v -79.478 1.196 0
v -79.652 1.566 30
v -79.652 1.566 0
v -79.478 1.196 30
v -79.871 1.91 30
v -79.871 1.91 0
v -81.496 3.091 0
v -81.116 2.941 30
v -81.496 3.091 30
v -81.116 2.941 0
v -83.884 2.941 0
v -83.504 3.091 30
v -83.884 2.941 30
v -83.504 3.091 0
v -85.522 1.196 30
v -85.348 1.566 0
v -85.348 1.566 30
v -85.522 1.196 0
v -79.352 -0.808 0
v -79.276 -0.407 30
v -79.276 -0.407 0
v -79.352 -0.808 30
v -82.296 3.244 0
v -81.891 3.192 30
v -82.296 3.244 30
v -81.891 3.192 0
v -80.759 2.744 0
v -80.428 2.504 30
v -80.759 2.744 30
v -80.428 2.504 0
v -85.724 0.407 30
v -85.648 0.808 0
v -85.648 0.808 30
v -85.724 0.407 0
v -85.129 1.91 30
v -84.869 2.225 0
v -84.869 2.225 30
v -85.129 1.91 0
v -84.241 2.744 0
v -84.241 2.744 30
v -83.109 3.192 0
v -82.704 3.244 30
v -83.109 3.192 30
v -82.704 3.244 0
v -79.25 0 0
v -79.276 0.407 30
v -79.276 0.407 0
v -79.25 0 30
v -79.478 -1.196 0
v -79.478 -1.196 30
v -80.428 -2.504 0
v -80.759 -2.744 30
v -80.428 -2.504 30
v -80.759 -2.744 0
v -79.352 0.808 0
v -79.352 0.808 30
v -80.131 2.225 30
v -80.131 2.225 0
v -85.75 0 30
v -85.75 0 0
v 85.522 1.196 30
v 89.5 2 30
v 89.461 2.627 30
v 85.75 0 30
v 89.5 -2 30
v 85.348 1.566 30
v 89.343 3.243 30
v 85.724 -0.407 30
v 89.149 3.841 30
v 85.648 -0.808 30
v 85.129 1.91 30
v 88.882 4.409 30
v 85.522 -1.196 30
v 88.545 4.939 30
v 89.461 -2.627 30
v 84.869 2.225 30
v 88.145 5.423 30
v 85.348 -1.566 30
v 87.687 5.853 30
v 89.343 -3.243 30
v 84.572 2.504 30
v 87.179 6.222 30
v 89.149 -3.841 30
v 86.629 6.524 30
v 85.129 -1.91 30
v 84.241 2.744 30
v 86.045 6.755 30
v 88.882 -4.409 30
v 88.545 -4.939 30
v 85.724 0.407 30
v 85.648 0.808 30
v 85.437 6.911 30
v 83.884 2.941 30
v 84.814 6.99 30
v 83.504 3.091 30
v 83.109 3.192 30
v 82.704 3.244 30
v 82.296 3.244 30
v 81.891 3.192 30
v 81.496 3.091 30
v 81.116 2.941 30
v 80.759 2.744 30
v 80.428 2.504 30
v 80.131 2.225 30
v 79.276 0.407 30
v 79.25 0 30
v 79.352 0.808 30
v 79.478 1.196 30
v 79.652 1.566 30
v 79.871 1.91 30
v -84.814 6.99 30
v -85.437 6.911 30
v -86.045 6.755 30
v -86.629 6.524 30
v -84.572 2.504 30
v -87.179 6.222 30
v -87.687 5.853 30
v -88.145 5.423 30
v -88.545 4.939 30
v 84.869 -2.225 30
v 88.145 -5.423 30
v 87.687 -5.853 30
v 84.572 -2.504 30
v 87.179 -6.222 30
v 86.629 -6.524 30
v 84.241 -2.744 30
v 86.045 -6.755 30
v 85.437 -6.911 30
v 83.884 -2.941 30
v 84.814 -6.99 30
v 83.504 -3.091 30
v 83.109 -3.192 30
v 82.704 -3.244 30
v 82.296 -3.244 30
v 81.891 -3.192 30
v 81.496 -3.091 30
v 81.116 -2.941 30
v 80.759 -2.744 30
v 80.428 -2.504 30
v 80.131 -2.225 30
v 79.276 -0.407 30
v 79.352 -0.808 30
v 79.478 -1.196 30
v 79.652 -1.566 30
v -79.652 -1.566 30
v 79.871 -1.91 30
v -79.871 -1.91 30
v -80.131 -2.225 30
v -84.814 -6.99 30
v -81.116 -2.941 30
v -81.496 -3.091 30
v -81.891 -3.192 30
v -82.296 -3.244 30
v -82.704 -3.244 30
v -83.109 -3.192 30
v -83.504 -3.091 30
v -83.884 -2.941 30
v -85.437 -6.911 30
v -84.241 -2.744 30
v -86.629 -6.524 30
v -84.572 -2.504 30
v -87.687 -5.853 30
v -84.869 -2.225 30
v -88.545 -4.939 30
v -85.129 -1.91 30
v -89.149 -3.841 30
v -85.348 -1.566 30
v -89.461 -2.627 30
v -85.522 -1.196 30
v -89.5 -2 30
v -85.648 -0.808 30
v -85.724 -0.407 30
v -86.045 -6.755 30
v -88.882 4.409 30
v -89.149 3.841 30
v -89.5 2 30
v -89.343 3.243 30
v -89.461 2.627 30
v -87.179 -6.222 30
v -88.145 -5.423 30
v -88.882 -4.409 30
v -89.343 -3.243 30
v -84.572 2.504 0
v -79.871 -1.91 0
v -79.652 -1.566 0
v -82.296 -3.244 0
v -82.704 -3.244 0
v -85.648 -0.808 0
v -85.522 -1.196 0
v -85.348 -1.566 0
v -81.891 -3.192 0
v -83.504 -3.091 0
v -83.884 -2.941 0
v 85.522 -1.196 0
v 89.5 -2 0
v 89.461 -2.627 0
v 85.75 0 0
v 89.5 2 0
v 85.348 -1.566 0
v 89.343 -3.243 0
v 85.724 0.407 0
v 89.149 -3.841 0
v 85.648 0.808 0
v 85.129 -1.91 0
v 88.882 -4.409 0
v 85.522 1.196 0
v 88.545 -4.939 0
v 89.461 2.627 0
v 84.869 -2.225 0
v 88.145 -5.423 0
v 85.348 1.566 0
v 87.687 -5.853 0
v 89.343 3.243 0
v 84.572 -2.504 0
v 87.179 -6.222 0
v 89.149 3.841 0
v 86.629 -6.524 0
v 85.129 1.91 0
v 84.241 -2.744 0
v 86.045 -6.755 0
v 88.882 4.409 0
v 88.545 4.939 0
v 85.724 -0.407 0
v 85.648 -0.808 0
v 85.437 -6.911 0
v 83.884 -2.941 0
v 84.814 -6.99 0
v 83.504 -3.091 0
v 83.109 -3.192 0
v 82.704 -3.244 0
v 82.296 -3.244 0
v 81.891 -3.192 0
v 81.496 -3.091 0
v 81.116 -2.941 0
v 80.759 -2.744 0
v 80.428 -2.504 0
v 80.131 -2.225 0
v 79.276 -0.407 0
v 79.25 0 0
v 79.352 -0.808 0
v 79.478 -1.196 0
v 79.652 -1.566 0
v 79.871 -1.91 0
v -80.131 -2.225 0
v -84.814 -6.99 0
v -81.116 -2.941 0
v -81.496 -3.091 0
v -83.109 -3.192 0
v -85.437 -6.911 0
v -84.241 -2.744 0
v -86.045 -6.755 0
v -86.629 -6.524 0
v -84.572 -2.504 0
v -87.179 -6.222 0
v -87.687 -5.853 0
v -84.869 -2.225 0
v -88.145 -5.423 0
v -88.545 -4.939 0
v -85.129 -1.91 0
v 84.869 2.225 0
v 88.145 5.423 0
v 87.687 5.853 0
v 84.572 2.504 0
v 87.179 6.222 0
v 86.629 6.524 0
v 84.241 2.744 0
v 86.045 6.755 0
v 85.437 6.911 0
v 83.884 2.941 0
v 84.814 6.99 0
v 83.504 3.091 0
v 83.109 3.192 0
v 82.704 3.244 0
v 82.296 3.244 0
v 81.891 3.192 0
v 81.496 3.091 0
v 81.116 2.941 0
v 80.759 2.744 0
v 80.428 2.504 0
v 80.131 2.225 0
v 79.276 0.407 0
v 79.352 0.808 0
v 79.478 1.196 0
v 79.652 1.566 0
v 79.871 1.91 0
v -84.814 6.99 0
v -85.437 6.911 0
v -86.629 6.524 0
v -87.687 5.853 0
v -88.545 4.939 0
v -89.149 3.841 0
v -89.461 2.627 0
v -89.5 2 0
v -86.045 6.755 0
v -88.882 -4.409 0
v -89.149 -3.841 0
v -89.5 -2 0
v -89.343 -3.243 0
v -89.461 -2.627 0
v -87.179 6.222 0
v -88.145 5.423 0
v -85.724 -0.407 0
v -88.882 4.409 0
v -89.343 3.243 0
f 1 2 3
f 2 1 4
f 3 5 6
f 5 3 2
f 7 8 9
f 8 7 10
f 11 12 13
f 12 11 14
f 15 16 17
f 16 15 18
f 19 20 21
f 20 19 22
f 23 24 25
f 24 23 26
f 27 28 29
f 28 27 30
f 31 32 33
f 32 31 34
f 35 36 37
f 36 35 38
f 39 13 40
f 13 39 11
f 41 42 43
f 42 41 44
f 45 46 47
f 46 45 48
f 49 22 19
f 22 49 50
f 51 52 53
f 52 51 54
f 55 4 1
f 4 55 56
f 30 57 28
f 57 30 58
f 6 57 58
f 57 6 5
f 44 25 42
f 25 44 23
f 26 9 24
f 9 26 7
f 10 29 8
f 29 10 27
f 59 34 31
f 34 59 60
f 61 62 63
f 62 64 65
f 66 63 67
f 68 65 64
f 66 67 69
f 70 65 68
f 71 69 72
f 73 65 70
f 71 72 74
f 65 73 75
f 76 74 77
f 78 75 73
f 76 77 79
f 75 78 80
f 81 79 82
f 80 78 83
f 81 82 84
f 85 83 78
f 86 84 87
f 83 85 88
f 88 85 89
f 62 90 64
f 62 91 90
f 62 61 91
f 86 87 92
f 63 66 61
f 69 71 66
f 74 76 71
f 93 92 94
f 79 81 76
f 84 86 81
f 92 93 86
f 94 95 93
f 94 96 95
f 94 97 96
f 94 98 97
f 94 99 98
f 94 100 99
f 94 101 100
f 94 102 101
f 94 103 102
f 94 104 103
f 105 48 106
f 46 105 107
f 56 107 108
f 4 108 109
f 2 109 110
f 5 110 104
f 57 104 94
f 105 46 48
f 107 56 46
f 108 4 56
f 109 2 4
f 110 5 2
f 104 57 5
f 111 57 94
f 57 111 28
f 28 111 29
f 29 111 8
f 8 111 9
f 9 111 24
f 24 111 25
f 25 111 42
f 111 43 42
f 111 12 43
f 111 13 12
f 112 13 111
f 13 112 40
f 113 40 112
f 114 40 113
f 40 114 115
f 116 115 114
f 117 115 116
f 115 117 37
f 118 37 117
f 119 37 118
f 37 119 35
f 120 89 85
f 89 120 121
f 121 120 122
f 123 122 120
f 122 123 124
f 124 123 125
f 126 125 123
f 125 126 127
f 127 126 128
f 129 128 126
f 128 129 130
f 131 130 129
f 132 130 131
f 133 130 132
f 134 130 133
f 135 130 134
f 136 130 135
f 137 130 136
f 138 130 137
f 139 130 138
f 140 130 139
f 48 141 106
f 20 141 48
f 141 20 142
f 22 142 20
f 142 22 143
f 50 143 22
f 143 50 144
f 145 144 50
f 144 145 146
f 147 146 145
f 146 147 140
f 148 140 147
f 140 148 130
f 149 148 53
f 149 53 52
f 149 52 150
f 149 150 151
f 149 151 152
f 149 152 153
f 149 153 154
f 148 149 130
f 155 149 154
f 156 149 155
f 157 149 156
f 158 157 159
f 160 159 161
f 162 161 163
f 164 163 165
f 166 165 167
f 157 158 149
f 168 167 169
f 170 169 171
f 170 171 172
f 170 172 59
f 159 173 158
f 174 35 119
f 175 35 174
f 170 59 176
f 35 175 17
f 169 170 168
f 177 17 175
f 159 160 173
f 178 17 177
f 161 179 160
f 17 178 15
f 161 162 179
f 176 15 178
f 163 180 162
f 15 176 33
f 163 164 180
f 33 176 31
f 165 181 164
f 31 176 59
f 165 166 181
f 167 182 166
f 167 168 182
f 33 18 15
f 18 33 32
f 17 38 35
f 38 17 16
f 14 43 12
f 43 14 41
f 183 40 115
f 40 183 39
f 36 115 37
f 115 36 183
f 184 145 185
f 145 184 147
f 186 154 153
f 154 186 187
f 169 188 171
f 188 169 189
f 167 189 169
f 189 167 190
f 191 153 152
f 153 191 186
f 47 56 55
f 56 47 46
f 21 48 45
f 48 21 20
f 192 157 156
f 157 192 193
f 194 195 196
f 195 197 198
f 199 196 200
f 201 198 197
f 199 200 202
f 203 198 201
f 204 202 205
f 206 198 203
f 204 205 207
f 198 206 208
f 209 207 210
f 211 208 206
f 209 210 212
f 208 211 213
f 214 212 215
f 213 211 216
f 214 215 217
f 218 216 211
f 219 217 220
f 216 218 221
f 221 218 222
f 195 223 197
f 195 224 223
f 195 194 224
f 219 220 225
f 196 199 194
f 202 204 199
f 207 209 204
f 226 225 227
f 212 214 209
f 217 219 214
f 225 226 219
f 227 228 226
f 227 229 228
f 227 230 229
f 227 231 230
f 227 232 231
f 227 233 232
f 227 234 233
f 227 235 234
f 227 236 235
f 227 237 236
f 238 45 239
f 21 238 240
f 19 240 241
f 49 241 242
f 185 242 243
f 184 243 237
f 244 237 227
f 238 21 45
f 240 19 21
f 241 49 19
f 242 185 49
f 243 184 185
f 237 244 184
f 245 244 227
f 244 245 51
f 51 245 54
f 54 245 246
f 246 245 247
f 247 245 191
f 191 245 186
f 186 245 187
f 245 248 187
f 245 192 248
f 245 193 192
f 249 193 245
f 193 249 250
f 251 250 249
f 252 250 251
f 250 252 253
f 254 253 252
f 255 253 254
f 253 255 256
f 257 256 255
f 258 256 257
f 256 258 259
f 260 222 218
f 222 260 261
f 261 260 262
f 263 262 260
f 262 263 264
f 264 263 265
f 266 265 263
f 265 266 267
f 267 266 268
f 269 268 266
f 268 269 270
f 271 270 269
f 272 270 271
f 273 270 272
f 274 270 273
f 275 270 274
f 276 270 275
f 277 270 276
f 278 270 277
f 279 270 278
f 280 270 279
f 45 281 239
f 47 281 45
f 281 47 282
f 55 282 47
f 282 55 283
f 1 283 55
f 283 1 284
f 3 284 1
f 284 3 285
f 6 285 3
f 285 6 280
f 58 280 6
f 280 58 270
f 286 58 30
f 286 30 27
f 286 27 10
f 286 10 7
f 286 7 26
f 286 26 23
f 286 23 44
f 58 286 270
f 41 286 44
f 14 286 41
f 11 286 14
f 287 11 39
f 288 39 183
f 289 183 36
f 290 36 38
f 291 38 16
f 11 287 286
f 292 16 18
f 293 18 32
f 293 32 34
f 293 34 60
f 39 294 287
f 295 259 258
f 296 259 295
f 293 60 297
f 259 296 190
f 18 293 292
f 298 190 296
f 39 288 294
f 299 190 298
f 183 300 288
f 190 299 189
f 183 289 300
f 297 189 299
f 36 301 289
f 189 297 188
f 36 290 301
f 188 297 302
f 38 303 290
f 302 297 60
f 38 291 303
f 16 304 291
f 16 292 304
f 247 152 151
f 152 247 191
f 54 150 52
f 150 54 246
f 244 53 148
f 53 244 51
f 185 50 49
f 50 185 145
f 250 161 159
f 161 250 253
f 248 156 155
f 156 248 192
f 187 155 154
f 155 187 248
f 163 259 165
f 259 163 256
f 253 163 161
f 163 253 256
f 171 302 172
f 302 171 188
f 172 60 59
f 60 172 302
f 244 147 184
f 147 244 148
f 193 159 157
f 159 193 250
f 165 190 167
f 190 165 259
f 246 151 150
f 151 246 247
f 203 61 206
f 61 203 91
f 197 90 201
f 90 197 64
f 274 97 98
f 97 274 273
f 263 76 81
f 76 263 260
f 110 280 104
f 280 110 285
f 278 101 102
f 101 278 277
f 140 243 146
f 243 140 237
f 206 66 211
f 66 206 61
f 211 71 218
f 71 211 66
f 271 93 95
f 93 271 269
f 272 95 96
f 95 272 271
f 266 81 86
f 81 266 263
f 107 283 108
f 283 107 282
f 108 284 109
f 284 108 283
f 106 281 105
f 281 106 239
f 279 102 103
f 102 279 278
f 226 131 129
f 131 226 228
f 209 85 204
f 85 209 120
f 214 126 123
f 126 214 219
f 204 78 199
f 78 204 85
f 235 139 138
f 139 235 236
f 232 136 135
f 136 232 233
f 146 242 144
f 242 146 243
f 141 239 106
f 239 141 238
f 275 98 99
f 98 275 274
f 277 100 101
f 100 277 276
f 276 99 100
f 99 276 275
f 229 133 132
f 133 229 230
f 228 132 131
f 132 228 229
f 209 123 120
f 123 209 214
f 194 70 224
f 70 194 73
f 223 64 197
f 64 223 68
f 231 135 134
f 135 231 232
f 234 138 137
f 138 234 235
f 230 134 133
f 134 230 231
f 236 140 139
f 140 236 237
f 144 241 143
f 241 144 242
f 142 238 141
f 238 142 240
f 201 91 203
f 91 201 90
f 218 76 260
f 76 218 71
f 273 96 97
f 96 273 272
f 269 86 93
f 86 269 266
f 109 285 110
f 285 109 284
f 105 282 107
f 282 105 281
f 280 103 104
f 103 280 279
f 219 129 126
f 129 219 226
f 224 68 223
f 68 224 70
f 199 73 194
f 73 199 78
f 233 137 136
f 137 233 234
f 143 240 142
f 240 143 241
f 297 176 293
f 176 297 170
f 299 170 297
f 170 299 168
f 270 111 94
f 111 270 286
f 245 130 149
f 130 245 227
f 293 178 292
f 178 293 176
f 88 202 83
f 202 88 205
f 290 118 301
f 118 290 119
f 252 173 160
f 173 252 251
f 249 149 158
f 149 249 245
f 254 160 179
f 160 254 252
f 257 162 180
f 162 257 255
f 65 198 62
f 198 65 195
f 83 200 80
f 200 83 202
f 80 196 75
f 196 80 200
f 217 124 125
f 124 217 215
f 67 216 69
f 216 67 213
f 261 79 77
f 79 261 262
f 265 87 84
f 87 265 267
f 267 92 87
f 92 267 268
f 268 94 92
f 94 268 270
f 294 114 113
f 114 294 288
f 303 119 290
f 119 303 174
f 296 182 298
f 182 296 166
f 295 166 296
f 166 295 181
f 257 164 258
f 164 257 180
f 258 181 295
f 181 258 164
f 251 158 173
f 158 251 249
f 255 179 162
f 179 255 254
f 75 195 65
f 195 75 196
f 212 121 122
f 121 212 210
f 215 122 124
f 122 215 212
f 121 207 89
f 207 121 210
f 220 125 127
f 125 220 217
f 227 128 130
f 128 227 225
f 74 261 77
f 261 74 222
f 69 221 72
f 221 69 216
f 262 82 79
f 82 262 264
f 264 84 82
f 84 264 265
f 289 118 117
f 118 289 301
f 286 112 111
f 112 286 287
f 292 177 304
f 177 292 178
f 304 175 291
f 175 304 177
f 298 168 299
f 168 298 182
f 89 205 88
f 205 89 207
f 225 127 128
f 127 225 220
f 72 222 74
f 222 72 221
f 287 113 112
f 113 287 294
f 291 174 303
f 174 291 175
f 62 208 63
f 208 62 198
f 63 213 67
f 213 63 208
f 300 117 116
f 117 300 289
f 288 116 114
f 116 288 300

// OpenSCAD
$fn = 50;


difference() {
	union() {
		hull() {
			translate(v = [-84.5000000000, 2.0000000000, 0]) {
				cylinder(h = 30, r = 5);
			}
			translate(v = [84.5000000000, 2.0000000000, 0]) {
				cylinder(h = 30, r = 5);
			}
			translate(v = [-84.5000000000, -2.0000000000, 0]) {
				cylinder(h = 30, r = 5);
			}
			translate(v = [84.5000000000, -2.0000000000, 0]) {
				cylinder(h = 30, r = 5);
			}
		}
	}
	union() {
		translate(v = [-82.5000000000, 0.0000000000, 0]) {
			cylinder(h = 30, r = 3.2500000000);
		}
		translate(v = [82.5000000000, 0.0000000000, 0]) {
			cylinder(h = 30, r = 3.2500000000);
		}
		translate(v = [-82.5000000000, 0.0000000000, 0]) {
			cylinder(h = 30, r = 1.8000000000);
		}
		translate(v = [82.5000000000, 0.0000000000, 0]) {
			cylinder(h = 30, r = 1.8000000000);
		}
		translate(v = [-82.5000000000, 0.0000000000, 0]) {
			cylinder(h = 30, r = 1.8000000000);
		}
		translate(v = [82.5000000000, 0.0000000000, 0]) {
			cylinder(h = 30, r = 1.8000000000);
		}
		translate(v = [-82.5000000000, 0.0000000000, 0]) {
			cylinder(h = 30, r = 1.8000000000);
		}
		translate(v = [82.5000000000, 0.0000000000, 0]) {
			cylinder(h = 30, r = 1.8000000000);
		}
	}
}
